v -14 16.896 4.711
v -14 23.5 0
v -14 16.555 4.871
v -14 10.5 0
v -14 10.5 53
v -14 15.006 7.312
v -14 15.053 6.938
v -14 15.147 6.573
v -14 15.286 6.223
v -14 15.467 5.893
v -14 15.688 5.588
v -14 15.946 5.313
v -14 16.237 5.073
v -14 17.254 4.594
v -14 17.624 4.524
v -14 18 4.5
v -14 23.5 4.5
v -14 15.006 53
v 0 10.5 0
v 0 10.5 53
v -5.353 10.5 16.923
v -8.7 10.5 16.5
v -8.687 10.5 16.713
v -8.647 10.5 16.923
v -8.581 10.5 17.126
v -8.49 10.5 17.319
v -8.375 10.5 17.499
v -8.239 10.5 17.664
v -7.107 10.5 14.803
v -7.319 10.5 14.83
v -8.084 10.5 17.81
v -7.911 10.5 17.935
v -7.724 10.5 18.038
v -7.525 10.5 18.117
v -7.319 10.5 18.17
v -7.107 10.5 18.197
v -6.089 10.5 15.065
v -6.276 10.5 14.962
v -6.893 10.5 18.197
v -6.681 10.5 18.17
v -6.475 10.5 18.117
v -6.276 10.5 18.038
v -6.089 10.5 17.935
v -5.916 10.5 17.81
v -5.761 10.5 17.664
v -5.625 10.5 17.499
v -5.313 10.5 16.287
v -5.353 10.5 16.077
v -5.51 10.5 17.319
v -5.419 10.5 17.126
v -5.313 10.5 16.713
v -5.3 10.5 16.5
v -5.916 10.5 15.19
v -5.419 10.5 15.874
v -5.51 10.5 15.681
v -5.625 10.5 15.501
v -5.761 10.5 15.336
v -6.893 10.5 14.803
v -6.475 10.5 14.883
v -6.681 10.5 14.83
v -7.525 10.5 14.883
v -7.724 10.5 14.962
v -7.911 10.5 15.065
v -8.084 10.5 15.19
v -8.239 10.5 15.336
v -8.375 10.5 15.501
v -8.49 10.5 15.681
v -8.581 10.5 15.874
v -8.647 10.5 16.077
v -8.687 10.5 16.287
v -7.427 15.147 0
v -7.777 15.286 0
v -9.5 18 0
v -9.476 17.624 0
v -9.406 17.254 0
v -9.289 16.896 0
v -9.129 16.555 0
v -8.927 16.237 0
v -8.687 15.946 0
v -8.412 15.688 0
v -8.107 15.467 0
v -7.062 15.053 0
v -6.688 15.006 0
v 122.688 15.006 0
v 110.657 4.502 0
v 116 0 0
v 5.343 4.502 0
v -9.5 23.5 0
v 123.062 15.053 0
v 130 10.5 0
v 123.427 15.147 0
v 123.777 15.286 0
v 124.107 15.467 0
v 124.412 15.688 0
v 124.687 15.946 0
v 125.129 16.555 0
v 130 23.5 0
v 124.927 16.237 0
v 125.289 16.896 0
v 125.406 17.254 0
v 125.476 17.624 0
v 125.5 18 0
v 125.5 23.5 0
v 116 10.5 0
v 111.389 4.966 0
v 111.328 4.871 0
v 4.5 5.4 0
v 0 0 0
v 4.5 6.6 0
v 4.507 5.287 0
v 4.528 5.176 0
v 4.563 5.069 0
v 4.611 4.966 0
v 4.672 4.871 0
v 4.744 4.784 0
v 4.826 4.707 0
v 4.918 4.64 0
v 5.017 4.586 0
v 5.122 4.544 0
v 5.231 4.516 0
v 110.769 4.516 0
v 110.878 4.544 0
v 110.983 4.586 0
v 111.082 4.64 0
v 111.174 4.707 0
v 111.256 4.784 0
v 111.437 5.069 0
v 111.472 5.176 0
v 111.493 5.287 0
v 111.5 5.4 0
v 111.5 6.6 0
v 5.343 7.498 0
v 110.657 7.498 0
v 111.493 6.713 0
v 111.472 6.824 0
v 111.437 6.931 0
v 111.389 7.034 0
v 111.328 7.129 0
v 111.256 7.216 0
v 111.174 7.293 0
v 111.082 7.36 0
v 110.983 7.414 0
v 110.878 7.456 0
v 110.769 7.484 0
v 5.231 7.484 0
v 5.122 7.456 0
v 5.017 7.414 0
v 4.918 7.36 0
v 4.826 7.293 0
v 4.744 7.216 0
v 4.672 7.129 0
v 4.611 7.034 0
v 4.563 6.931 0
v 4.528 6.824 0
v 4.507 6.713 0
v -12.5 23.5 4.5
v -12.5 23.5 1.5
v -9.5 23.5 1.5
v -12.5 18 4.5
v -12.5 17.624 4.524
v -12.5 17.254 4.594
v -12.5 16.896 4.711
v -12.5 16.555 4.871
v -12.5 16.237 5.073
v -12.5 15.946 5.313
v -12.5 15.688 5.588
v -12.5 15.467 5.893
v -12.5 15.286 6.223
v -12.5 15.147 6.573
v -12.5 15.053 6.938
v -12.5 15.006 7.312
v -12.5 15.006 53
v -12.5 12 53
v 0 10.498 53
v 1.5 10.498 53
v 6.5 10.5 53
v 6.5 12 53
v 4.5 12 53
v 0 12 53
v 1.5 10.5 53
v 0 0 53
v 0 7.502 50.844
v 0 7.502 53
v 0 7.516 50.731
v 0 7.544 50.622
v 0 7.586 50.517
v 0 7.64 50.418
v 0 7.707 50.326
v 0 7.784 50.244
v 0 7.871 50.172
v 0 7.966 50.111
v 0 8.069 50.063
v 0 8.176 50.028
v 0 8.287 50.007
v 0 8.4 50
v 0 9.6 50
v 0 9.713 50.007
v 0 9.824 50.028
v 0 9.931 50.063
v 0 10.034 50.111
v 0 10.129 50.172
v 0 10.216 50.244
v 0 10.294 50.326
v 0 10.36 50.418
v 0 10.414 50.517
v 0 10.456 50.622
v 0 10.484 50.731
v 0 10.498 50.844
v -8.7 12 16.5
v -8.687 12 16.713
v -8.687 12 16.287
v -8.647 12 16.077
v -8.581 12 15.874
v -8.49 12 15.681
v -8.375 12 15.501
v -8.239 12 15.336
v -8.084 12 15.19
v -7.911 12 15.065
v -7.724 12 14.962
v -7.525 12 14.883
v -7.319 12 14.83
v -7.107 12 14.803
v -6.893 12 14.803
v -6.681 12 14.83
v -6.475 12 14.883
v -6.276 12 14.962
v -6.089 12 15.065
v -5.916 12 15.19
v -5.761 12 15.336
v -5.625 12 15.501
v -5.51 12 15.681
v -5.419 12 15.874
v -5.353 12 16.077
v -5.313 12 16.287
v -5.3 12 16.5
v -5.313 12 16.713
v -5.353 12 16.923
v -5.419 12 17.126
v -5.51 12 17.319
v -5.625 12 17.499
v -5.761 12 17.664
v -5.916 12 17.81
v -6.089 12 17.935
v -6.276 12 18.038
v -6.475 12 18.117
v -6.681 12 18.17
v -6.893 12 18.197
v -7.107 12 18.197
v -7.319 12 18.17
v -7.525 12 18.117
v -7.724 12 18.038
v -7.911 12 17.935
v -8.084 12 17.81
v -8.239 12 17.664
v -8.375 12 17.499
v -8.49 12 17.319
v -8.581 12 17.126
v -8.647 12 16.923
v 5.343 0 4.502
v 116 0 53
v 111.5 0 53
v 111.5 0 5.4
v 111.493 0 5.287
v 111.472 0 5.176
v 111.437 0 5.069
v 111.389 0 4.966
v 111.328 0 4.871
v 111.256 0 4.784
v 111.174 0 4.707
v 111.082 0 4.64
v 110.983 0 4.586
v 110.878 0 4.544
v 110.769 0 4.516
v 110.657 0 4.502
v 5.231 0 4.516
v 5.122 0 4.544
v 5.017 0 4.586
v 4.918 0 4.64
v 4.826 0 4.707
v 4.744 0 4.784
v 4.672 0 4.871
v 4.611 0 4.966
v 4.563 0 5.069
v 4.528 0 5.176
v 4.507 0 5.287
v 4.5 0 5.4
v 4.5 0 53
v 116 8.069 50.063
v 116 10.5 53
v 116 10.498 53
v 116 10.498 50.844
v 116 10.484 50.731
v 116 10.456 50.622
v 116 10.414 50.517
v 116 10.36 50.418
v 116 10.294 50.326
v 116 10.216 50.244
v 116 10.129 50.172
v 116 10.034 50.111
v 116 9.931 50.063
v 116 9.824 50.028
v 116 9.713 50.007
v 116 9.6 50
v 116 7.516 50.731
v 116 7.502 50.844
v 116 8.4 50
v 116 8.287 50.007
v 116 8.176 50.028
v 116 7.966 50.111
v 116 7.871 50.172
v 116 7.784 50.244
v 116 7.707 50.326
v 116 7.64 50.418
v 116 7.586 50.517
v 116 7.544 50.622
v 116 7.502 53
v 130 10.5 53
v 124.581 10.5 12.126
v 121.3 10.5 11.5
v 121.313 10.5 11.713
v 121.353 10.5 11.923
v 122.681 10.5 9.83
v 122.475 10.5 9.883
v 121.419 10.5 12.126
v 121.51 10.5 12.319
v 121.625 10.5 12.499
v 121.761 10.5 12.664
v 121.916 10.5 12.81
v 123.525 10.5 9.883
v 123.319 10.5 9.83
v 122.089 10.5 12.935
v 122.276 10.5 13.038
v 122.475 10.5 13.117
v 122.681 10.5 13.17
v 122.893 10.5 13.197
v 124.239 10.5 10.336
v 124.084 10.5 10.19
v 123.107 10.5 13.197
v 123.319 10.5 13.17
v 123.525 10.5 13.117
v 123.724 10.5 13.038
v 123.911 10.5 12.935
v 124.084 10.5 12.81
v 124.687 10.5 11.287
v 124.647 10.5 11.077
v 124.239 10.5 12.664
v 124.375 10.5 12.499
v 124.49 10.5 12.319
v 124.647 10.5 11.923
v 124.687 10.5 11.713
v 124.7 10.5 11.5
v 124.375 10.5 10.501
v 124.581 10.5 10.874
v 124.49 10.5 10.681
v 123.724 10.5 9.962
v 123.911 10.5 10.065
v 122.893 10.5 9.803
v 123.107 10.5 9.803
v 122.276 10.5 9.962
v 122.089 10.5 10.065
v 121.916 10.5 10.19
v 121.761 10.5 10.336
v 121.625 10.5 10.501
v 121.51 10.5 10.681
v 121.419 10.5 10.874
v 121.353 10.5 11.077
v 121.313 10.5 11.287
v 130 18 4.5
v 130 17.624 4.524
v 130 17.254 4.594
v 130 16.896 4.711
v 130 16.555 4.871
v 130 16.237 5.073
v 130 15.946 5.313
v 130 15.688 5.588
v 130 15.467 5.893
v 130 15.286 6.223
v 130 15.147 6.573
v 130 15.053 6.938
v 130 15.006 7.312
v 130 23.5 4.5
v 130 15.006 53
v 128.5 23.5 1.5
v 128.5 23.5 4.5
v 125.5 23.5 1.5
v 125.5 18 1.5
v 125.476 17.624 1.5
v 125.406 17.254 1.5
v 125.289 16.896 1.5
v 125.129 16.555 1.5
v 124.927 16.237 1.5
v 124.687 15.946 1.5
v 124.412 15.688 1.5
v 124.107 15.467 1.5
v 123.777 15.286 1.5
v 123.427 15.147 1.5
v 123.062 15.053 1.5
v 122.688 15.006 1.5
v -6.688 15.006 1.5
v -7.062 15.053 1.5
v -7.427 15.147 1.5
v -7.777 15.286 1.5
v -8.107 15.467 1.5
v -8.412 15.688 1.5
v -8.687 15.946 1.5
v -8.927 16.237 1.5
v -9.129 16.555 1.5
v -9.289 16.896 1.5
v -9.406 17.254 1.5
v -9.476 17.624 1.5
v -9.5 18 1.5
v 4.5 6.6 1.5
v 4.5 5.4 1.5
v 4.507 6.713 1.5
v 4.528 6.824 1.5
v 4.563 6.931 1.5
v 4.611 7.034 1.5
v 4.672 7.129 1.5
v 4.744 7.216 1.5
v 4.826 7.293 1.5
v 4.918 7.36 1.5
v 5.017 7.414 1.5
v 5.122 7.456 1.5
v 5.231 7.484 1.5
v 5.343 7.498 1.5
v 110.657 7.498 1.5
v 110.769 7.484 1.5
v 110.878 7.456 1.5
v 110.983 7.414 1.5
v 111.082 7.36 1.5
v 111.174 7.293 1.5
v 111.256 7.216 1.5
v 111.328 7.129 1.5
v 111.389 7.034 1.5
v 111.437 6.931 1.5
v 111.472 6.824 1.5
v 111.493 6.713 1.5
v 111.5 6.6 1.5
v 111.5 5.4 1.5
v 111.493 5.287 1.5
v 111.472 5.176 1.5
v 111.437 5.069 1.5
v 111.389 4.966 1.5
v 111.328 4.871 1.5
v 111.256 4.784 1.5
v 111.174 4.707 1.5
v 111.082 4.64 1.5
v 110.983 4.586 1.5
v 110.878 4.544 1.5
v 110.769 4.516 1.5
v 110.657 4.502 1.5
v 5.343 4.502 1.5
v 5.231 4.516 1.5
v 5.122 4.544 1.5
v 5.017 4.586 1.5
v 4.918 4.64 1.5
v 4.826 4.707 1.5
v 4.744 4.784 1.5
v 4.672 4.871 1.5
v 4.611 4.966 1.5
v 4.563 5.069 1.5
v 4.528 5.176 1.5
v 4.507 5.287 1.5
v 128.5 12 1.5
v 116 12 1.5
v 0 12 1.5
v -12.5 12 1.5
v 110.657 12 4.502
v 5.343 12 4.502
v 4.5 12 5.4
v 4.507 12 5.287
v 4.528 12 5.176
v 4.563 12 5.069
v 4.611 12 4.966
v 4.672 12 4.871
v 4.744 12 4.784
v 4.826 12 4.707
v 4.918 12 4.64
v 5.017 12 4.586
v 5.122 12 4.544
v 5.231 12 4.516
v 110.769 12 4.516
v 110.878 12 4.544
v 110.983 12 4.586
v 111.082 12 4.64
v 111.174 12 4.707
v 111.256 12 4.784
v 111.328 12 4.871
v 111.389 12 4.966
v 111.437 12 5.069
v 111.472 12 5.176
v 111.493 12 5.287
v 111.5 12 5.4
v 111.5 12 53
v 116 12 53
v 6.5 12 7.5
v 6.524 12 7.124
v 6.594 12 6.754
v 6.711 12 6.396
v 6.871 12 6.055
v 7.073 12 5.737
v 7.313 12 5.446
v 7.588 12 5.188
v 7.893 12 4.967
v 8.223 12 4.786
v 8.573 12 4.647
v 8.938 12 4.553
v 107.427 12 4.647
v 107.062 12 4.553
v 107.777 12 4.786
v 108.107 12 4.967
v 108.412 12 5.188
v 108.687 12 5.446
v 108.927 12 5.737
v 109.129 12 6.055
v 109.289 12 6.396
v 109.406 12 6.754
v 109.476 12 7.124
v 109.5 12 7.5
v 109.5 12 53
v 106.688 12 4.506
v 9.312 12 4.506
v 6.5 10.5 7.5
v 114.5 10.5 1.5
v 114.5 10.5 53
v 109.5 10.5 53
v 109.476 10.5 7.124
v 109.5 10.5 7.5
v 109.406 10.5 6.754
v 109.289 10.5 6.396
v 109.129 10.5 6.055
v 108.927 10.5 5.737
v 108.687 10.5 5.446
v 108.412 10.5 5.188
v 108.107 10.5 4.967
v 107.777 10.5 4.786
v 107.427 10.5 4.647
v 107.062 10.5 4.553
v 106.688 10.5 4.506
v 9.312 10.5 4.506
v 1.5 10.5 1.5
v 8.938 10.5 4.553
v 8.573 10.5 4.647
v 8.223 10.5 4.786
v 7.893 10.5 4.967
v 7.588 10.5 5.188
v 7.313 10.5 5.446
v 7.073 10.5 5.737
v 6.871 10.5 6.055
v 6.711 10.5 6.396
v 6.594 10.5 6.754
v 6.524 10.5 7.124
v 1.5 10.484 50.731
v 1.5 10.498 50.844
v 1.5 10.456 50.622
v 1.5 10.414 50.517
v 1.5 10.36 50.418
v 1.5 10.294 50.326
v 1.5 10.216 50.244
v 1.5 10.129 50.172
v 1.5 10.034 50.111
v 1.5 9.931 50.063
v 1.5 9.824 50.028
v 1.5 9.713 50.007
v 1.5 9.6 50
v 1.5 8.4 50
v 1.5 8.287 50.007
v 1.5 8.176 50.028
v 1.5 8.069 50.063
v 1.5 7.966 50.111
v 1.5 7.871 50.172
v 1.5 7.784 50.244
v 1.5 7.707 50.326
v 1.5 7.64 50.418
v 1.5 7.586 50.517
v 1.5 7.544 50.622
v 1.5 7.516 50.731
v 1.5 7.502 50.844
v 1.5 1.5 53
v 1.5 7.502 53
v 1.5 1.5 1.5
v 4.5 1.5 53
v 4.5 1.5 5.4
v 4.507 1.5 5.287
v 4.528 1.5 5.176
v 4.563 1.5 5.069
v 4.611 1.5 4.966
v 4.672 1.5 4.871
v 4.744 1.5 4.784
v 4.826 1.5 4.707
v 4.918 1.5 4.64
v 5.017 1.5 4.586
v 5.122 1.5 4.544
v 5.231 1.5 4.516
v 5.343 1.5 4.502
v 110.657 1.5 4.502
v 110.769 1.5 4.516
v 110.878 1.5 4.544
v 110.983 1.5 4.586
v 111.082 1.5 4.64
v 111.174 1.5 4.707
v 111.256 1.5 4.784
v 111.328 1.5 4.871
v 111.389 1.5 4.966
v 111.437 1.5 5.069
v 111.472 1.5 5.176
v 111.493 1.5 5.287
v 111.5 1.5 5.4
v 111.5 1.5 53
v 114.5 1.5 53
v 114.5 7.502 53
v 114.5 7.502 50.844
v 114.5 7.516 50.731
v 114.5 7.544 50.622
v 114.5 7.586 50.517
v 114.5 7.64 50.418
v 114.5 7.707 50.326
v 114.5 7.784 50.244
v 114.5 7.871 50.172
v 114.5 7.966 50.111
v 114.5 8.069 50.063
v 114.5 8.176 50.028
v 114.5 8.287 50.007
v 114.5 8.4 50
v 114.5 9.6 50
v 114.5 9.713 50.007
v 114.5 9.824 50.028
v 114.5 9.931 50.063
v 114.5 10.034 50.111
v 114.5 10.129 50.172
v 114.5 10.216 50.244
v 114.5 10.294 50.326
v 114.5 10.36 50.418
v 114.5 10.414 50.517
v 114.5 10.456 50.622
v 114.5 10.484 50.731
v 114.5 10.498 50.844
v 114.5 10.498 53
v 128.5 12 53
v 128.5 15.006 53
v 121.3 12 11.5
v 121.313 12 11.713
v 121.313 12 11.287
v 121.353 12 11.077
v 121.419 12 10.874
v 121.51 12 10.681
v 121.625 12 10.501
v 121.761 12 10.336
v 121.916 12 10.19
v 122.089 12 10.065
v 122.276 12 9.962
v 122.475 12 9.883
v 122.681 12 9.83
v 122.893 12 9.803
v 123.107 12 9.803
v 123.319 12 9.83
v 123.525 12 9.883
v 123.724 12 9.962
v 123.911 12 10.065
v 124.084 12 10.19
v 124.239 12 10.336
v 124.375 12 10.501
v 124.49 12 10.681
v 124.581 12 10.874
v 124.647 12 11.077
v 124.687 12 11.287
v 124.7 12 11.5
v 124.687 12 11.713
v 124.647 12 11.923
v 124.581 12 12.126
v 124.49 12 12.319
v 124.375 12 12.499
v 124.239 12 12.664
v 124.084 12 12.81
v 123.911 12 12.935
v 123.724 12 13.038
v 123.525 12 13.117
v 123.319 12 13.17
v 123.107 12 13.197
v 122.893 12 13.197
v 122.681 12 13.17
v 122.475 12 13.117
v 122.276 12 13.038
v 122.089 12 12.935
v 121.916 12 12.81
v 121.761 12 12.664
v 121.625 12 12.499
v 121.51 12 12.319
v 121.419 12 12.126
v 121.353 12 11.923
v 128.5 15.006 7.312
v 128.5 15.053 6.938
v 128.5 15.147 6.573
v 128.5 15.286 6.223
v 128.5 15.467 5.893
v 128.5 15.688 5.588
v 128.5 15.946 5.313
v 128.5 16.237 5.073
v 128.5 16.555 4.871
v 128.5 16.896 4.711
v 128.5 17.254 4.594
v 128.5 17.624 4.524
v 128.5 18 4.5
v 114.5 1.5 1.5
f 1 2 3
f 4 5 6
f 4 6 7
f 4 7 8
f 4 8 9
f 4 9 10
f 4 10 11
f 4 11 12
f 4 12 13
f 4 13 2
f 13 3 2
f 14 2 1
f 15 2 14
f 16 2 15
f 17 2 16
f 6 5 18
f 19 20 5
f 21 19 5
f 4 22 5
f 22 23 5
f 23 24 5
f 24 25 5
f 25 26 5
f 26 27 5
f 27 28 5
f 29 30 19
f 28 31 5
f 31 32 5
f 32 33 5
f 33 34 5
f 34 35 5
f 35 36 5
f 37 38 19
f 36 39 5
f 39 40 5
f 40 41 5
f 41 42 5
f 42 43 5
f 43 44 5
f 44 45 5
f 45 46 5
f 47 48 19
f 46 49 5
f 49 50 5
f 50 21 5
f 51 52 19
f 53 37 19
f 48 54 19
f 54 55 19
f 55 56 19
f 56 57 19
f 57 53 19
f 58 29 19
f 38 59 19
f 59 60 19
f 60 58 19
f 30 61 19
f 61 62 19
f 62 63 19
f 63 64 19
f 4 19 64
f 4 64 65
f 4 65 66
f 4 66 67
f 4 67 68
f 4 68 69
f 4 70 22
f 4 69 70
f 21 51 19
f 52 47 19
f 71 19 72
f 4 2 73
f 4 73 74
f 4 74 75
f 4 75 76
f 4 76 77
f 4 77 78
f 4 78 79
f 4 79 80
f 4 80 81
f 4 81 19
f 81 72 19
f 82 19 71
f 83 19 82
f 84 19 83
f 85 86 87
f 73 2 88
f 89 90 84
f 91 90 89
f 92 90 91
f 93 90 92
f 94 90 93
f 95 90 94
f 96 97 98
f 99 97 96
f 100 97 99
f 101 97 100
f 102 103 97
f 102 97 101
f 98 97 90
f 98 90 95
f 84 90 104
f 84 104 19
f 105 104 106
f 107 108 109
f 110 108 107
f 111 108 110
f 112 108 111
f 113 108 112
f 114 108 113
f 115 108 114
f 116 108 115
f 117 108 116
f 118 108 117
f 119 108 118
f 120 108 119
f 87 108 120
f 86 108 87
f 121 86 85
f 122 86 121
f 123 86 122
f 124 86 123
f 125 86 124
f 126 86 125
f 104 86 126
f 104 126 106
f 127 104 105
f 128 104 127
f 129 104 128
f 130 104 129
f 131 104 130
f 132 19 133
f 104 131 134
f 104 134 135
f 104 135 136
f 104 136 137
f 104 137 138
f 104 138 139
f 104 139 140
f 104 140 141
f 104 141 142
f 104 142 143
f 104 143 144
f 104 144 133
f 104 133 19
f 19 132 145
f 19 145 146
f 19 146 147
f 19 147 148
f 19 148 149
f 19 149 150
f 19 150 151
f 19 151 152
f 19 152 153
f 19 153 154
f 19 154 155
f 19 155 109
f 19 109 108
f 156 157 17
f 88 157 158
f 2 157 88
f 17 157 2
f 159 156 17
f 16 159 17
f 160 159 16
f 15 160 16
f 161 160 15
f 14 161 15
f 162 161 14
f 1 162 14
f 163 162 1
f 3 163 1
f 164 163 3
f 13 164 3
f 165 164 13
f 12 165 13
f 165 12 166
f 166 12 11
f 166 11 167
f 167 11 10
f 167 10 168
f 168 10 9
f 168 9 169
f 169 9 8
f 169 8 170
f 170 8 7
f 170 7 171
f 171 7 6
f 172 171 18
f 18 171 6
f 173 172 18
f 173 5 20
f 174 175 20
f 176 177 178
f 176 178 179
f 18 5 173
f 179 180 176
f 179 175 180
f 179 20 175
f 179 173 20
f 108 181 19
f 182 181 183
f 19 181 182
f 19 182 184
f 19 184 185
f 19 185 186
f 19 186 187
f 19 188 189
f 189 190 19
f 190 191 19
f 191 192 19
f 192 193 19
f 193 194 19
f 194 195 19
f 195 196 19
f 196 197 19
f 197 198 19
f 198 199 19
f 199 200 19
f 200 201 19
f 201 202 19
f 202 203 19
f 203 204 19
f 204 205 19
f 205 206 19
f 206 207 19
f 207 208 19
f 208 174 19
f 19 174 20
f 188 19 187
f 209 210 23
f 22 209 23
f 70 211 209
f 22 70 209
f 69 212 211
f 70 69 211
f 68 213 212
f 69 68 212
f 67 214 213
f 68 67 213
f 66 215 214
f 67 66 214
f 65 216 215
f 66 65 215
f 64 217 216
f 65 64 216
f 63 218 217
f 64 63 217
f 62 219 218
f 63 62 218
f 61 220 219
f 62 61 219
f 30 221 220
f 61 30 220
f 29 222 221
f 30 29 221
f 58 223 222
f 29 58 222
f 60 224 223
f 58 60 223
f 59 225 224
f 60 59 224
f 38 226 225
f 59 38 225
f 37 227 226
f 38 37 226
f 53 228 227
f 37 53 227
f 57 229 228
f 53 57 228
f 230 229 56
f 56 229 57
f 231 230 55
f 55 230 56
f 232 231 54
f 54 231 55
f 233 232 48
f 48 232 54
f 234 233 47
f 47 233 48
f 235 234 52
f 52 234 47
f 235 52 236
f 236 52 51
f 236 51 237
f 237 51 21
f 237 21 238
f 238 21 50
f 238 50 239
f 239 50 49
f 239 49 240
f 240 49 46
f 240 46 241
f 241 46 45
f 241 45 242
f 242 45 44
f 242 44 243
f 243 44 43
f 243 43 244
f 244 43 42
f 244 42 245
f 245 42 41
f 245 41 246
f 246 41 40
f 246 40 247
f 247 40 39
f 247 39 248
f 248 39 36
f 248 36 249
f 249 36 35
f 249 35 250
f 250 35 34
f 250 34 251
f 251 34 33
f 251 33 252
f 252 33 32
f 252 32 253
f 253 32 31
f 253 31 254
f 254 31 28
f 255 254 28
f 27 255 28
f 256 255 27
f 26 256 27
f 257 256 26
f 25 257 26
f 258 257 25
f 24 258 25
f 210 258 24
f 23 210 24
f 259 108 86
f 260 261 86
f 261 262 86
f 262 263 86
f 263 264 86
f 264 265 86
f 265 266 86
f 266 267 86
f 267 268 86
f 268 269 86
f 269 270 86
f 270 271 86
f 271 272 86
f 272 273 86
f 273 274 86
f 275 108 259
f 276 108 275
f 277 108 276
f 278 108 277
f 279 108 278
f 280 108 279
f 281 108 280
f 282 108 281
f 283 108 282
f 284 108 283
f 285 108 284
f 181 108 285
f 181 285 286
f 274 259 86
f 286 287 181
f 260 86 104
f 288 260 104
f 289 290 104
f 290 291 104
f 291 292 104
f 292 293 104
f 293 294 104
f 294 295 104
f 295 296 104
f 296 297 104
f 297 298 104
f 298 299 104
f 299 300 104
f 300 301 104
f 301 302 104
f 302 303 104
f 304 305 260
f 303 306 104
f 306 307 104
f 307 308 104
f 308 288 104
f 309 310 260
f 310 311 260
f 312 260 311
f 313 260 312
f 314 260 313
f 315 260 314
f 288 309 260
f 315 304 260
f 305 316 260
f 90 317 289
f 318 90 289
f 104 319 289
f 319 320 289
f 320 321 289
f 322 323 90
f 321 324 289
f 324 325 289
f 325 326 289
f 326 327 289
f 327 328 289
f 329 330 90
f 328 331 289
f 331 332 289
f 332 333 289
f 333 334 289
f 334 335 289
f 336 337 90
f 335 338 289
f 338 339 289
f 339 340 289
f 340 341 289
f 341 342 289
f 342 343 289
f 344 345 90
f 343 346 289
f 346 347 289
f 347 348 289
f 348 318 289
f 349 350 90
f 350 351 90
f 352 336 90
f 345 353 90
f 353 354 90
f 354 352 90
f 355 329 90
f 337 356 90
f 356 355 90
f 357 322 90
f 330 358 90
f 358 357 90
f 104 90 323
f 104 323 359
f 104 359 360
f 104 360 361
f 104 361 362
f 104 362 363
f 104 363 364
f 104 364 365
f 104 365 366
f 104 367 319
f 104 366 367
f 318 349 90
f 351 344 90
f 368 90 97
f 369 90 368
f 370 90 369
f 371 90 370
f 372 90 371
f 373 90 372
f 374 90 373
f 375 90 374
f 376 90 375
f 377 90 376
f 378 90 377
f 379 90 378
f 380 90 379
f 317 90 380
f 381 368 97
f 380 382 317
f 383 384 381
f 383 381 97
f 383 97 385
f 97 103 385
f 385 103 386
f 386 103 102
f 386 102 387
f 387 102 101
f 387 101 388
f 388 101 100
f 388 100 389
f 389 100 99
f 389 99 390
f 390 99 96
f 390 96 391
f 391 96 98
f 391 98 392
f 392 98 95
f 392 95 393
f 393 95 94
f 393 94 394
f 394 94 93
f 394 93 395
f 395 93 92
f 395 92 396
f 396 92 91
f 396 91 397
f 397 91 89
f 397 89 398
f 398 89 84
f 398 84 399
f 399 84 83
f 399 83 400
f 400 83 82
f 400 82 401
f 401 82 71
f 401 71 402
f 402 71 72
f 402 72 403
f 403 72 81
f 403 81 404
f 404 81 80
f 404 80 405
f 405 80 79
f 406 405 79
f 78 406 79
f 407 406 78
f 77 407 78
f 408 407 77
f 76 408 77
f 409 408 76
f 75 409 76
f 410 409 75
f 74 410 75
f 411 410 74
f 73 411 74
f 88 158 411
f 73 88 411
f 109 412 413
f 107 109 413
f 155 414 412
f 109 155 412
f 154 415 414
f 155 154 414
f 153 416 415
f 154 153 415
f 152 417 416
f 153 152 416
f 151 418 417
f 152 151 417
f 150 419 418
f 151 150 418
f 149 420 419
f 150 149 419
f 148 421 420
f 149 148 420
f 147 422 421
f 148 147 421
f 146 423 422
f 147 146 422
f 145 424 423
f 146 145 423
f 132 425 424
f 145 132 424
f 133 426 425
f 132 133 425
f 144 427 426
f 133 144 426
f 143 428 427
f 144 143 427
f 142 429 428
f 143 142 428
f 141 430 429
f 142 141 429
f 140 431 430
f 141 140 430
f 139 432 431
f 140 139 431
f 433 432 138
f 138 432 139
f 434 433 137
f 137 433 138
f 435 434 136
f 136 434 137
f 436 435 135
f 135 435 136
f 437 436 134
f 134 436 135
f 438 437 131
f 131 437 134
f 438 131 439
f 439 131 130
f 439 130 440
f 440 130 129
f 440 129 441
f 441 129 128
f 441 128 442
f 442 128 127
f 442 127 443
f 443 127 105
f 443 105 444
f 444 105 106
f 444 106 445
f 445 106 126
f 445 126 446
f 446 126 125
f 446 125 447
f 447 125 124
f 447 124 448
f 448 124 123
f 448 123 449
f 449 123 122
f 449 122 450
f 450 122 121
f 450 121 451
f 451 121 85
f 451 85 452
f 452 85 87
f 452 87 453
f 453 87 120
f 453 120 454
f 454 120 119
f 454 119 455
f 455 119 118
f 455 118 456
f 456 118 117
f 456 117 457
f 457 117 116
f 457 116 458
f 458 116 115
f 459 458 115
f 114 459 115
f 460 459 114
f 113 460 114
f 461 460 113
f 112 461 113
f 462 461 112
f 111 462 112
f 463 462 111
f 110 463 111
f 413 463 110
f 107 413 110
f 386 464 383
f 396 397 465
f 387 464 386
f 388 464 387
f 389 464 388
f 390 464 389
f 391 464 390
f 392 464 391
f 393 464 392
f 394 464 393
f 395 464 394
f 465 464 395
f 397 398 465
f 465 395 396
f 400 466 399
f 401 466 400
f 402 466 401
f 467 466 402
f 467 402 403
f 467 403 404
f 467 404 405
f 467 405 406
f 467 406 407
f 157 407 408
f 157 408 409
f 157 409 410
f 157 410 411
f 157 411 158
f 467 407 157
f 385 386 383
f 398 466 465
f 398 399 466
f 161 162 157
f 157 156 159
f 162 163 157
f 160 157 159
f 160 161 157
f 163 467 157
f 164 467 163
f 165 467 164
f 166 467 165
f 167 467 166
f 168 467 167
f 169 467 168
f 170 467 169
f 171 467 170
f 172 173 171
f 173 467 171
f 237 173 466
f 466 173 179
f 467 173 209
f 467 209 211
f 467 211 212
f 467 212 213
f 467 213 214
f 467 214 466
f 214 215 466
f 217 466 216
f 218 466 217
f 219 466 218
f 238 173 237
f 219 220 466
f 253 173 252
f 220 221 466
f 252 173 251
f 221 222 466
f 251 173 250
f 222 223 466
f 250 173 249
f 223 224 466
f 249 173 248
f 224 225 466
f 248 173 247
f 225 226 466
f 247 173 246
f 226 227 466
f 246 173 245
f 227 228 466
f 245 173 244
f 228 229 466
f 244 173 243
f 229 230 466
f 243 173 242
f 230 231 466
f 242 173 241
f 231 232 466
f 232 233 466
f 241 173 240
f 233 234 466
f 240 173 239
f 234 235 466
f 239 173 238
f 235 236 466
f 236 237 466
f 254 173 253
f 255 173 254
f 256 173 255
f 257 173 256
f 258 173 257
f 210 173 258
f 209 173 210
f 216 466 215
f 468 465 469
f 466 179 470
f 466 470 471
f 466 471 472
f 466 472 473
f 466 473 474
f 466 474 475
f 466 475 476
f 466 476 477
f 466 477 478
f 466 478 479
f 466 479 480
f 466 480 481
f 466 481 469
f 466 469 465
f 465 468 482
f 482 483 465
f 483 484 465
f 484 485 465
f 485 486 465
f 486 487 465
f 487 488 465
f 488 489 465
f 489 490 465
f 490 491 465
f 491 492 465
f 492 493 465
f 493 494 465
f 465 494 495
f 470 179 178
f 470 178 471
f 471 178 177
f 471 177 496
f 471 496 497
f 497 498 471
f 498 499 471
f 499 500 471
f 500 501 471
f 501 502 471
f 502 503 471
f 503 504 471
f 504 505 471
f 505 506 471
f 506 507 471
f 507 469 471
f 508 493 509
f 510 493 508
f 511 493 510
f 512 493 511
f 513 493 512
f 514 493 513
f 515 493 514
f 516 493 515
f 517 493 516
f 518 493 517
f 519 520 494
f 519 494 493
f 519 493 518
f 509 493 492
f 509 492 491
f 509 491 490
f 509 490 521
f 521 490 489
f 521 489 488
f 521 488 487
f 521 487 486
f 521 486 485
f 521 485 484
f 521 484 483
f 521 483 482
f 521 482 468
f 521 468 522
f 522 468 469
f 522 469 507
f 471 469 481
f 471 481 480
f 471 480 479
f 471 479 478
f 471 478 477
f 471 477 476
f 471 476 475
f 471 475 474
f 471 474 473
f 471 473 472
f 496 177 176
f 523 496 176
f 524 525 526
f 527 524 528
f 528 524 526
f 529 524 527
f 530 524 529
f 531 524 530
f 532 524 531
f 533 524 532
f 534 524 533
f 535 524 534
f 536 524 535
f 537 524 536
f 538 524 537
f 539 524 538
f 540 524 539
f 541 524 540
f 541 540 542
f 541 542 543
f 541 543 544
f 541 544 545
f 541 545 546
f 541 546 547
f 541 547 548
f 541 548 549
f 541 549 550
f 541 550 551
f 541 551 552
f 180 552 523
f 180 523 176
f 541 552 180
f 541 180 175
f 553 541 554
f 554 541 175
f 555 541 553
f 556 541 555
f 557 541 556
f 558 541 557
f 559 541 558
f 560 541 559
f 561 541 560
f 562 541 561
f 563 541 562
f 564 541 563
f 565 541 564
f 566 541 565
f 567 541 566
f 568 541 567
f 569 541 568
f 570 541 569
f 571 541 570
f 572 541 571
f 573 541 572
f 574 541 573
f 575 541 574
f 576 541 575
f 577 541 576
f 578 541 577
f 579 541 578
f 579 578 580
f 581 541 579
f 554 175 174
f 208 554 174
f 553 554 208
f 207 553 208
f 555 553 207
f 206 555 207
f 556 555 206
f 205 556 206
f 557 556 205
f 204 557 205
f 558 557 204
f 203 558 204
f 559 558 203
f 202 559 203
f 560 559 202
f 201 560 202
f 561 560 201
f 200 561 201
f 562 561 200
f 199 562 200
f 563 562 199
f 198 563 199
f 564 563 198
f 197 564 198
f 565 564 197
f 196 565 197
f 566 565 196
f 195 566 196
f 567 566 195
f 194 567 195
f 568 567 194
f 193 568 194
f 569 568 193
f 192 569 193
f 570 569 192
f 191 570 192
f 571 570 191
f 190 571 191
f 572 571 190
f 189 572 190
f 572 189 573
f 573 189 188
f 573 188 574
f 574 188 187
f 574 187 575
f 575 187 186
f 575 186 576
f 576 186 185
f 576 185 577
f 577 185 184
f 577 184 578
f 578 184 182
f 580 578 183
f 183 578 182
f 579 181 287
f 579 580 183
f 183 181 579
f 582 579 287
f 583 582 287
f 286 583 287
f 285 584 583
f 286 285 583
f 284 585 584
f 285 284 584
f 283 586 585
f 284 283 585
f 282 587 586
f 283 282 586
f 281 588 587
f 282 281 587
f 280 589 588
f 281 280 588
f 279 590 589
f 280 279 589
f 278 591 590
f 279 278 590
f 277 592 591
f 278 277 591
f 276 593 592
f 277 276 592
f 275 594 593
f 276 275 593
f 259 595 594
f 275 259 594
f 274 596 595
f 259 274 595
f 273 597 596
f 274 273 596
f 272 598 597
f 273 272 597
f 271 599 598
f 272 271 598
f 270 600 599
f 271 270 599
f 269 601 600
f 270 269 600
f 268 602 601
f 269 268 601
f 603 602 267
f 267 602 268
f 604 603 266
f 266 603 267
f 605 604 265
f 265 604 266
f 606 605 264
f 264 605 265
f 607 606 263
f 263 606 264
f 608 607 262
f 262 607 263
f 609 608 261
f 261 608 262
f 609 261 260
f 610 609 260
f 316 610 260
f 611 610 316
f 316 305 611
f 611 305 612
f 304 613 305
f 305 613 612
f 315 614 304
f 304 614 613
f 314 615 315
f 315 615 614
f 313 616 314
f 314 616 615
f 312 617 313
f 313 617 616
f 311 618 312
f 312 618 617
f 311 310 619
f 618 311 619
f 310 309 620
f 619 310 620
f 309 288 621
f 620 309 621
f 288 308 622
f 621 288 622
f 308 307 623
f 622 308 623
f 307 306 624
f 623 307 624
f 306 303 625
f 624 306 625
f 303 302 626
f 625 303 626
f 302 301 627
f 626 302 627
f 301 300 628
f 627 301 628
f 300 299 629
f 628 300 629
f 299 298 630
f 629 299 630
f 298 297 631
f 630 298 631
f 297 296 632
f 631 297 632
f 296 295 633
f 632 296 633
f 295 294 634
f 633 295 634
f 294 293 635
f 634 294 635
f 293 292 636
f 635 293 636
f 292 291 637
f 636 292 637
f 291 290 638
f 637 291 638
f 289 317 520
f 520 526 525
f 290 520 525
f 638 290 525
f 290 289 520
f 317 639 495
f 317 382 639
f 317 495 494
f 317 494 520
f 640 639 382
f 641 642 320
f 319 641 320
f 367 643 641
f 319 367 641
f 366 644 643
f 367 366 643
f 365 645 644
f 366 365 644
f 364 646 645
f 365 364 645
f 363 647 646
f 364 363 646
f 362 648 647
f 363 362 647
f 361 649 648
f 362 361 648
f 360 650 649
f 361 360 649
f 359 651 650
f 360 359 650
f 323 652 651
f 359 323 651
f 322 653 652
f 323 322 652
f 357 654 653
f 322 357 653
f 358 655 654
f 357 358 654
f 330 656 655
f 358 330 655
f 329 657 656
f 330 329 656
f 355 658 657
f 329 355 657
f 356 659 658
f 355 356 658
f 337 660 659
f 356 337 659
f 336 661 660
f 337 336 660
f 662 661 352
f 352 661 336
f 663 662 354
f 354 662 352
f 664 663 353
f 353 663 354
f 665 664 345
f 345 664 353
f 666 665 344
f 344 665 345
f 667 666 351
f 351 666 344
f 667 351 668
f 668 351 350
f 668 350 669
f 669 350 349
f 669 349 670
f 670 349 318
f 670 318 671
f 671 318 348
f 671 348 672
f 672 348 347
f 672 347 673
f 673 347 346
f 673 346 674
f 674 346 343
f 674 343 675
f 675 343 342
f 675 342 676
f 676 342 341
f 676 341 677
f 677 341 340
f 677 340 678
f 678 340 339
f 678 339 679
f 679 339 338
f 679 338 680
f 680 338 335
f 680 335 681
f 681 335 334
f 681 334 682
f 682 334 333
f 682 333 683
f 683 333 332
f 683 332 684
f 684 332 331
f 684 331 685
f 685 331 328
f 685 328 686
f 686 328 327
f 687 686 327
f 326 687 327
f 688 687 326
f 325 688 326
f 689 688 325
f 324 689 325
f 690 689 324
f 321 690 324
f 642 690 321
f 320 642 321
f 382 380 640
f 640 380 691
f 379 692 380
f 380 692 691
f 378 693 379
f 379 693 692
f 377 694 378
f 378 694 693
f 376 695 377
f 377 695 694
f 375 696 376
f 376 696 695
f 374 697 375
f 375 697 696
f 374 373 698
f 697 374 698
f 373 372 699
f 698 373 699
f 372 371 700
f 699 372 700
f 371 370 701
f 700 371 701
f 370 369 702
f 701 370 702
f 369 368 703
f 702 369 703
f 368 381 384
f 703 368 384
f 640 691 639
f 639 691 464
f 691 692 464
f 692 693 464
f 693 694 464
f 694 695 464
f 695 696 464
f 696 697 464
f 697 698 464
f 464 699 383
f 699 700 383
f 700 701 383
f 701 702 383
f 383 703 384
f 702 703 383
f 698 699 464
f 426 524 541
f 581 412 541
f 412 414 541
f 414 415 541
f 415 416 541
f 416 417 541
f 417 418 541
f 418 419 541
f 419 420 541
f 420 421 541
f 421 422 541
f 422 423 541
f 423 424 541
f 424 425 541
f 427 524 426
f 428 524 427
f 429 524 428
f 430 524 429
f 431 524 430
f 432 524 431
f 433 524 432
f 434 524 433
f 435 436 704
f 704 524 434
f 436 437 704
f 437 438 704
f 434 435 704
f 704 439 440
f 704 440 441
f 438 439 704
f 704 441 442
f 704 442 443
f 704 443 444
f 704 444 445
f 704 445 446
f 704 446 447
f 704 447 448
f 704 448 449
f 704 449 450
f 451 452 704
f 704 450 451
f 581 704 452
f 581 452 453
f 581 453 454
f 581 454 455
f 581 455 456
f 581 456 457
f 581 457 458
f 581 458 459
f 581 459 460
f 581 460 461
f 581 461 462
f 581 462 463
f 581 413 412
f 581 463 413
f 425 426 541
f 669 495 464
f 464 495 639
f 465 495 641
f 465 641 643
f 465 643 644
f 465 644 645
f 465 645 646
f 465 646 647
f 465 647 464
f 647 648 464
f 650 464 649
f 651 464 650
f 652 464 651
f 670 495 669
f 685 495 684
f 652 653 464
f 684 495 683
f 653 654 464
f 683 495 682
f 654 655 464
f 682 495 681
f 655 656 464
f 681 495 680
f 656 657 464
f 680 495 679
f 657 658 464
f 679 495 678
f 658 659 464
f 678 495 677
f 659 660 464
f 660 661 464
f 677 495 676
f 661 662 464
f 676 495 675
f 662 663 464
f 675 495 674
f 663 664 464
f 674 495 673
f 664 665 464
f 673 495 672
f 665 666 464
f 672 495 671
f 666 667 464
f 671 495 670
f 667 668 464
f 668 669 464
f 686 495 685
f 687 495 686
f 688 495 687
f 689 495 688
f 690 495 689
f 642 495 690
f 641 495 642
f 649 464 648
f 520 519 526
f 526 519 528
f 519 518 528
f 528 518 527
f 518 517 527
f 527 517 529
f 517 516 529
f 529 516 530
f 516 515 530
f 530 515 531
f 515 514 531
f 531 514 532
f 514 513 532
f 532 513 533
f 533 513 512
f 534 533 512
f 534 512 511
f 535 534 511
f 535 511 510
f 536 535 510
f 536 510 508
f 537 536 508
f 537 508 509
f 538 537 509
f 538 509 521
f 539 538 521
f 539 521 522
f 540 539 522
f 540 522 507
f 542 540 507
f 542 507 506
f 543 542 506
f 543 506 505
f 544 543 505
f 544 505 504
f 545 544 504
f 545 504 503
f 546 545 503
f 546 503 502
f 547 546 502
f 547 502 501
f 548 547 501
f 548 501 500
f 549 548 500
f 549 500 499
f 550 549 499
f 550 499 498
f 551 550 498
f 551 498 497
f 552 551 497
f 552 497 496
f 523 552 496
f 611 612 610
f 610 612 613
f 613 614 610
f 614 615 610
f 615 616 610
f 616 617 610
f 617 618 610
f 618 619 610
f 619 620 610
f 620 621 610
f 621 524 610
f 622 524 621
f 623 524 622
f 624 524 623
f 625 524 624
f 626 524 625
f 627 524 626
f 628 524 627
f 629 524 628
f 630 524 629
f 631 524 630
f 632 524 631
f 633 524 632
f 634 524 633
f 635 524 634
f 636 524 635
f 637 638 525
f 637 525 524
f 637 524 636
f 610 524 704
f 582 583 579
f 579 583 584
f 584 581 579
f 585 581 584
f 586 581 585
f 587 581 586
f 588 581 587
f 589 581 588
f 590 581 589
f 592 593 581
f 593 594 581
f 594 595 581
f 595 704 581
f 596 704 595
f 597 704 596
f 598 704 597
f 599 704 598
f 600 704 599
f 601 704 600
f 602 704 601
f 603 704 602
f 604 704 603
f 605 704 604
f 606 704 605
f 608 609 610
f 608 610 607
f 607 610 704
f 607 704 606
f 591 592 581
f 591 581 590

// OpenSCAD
Db = 9.0;
Dh = 50;

Nl = 141;
Nb = 20;
Nh = 50;
NWr = 3;
NWb = 19;

d = 1.5;

Dl = 116 - 2*d;


Wb = 3;
Wr = 0.9;

$fn = 50;

module frame(l, b, h, Wb, Wr, d)
{
	difference(){
		cube([l+2*d,b+2*d,h+2*d]);
		translate([d,d,d])cube([l,b,h+4*d]);
	
		rotate([90,0,0])
		translate([Wb+Wr+d,Wb+Wr+d,-4*d-b]){
			minkowski(){
				cube([l-2*(Wb+Wr),max(l,b,h)+4*d+2*Wr,l+8*d]);
				cylinder(r=Wr,h=1);
			}
		}
	
		rotate([0,-90,0])
		translate([Wb+Wr+d,Wb+Wr+d,-4*d-l]){
			minkowski(){
				cube([max(l,b,h)+4*d+2*Wr,b-2*(Wb+Wr),l+8*d]);
				cylinder(r=Wr,h=1);
			}
		}
	
		translate([Wb+Wr+d,Wb+Wr+d,-4*d]){
			minkowski(){
				cube([l-2*(Wb+Wr),b-2*(Wb+Wr),h+8*d]);
				cylinder(r=Wr,h=1);
			}
		}
	}
}

module frame_asym(l, b, h, Wb, Wr, d, HWb)
{
	difference(){
		cube([l+2*d,b+2*d,h+2*d]);
		translate([d,d,d])cube([l,b,h+4*d]);
	
		rotate([90,0,0])
		translate([Wb+Wr+d,Wb+Wr+d,-4*d-b]){
						//translate([-10,18,6])rotate([0,90,0]) #cylinder(r=1.5,h=15);
			#minkowski(){
				cube([l-2*(Wb+Wr),max(l,b,h)+4*d+2*Wr,l+8*d]);
				cylinder(r=Wr,h=1);
			}

		}
	
		rotate([0,-90,0])
		translate([Wb+Wr+d+HWb,Wb*2+Wr+d,-4*d-l]){
			#minkowski(){
				cube([max(l,b,h)+4*d+2*Wr,b-2*(Wb+Wr),l+8*d]);
				cylinder(r=Wr,h=1);
			}
		}
	
		translate([Wb+Wr+d,Wb+Wr+d,-4*d]){
			minkowski(){
				cube([l-2*(Wb+Wr),b-2*(Wb+Wr),h+8*d]);
				cylinder(r=Wr,h=1);
			}
		}
	}
}

module frame2(l, b, h, Wl, Wb, Wr, d, rl, xl, yl)
{
	difference(){
		cube([l+2*d,b+2*d,h+2*d]);
		translate([d,d,d])cube([l,b,h+4*d]);
	
		rotate([90,0,0]){
			translate([Wl+Wr+d,Wb+Wr+d,-4*d-b]){
				minkowski(){
					cube([l-2*(Wl+Wr),max(l,b,h)+4*d+2*Wr,l+8*d]);
					cylinder(r=Wr,h=1);
				}
			}
			translate([xl,yl,-2*d])cylinder(r=rl, h=3*d);
			translate([l+2*d-xl,yl,-2*d])cylinder(r=rl, h=3*d);
		}
		rotate([0,-90,0]){
			translate([Wb+Wr+d,Wb+Wr+d,-4*d-l]){
				minkowski(){
					cube([max(l,b,h)+4*d+2*Wr,b-2*(Wb+Wr),l+8*d]);
					cylinder(r=Wr,h=1);
				}
			}
		}
		translate([Wb+Wr+d,Wb+Wr+d,-4*d]){
			minkowski(){
				cube([l-2*(Wb+Wr),b-2*(Wb+Wr),h+8*d]);
				cylinder(r=Wr,h=1);
			}
		}
	}
}

module frame2_mh(l, b, h, Wl, Wb, Wr, d, rl, xl, yl, xl2, yl2)
{
	difference(){
		cube([l+2*d,b+2*d,h+2*d]);
		translate([d,d,d])cube([l,b,h+4*d]);
	
		rotate([90,0,0]){
			translate([Wl+Wr+d,Wb+Wr+d,-4*d-b]){
				minkowski(){
					cube([l-2*(Wl+Wr),max(l,b,h)+4*d+2*Wr,l+8*d]);
					cylinder(r=Wr,h=1);
				}
			}
			translate([xl,yl,-2*d])cylinder(r=rl, h=3*d);
			translate([l+2*d-xl2,yl2,-2*d])cylinder(r=rl, h=3*d);
		}
		rotate([0,-90,0]){
			translate([Wb+Wr+d,Wb+Wr+d,-4*d-l]){
				minkowski(){
					cube([max(l,b,h)+4*d+2*Wr,b-2*(Wb+Wr),l+8*d]);
					cylinder(r=Wr,h=1);
				}
			}
		}
		translate([Wb+Wr+d,Wb+Wr+d,-4*d]){
			minkowski(){
				cube([l-2*(Wb+Wr),b-2*(Wb+Wr),h+8*d]);
				cylinder(r=Wr,h=1);
			}
		}
	}
}

frame_asym(Dl, Db, Dh, Wb, Wr, d, 20+25.5);
difference(){
	translate([(Dl-Nl)/2,Db+d,0]) frame2_mh(Nl, Nb, Nh, NWb, Wb, NWr, d, 1.7,5.5+d,15+d,5.5+d,10+d);
	translate([(Dl-Nl)/2-d,+Db+Nb/2+3*d,-d]) cube([Nl+4*d,Nb+2*d,Nh+4*d]);
}
